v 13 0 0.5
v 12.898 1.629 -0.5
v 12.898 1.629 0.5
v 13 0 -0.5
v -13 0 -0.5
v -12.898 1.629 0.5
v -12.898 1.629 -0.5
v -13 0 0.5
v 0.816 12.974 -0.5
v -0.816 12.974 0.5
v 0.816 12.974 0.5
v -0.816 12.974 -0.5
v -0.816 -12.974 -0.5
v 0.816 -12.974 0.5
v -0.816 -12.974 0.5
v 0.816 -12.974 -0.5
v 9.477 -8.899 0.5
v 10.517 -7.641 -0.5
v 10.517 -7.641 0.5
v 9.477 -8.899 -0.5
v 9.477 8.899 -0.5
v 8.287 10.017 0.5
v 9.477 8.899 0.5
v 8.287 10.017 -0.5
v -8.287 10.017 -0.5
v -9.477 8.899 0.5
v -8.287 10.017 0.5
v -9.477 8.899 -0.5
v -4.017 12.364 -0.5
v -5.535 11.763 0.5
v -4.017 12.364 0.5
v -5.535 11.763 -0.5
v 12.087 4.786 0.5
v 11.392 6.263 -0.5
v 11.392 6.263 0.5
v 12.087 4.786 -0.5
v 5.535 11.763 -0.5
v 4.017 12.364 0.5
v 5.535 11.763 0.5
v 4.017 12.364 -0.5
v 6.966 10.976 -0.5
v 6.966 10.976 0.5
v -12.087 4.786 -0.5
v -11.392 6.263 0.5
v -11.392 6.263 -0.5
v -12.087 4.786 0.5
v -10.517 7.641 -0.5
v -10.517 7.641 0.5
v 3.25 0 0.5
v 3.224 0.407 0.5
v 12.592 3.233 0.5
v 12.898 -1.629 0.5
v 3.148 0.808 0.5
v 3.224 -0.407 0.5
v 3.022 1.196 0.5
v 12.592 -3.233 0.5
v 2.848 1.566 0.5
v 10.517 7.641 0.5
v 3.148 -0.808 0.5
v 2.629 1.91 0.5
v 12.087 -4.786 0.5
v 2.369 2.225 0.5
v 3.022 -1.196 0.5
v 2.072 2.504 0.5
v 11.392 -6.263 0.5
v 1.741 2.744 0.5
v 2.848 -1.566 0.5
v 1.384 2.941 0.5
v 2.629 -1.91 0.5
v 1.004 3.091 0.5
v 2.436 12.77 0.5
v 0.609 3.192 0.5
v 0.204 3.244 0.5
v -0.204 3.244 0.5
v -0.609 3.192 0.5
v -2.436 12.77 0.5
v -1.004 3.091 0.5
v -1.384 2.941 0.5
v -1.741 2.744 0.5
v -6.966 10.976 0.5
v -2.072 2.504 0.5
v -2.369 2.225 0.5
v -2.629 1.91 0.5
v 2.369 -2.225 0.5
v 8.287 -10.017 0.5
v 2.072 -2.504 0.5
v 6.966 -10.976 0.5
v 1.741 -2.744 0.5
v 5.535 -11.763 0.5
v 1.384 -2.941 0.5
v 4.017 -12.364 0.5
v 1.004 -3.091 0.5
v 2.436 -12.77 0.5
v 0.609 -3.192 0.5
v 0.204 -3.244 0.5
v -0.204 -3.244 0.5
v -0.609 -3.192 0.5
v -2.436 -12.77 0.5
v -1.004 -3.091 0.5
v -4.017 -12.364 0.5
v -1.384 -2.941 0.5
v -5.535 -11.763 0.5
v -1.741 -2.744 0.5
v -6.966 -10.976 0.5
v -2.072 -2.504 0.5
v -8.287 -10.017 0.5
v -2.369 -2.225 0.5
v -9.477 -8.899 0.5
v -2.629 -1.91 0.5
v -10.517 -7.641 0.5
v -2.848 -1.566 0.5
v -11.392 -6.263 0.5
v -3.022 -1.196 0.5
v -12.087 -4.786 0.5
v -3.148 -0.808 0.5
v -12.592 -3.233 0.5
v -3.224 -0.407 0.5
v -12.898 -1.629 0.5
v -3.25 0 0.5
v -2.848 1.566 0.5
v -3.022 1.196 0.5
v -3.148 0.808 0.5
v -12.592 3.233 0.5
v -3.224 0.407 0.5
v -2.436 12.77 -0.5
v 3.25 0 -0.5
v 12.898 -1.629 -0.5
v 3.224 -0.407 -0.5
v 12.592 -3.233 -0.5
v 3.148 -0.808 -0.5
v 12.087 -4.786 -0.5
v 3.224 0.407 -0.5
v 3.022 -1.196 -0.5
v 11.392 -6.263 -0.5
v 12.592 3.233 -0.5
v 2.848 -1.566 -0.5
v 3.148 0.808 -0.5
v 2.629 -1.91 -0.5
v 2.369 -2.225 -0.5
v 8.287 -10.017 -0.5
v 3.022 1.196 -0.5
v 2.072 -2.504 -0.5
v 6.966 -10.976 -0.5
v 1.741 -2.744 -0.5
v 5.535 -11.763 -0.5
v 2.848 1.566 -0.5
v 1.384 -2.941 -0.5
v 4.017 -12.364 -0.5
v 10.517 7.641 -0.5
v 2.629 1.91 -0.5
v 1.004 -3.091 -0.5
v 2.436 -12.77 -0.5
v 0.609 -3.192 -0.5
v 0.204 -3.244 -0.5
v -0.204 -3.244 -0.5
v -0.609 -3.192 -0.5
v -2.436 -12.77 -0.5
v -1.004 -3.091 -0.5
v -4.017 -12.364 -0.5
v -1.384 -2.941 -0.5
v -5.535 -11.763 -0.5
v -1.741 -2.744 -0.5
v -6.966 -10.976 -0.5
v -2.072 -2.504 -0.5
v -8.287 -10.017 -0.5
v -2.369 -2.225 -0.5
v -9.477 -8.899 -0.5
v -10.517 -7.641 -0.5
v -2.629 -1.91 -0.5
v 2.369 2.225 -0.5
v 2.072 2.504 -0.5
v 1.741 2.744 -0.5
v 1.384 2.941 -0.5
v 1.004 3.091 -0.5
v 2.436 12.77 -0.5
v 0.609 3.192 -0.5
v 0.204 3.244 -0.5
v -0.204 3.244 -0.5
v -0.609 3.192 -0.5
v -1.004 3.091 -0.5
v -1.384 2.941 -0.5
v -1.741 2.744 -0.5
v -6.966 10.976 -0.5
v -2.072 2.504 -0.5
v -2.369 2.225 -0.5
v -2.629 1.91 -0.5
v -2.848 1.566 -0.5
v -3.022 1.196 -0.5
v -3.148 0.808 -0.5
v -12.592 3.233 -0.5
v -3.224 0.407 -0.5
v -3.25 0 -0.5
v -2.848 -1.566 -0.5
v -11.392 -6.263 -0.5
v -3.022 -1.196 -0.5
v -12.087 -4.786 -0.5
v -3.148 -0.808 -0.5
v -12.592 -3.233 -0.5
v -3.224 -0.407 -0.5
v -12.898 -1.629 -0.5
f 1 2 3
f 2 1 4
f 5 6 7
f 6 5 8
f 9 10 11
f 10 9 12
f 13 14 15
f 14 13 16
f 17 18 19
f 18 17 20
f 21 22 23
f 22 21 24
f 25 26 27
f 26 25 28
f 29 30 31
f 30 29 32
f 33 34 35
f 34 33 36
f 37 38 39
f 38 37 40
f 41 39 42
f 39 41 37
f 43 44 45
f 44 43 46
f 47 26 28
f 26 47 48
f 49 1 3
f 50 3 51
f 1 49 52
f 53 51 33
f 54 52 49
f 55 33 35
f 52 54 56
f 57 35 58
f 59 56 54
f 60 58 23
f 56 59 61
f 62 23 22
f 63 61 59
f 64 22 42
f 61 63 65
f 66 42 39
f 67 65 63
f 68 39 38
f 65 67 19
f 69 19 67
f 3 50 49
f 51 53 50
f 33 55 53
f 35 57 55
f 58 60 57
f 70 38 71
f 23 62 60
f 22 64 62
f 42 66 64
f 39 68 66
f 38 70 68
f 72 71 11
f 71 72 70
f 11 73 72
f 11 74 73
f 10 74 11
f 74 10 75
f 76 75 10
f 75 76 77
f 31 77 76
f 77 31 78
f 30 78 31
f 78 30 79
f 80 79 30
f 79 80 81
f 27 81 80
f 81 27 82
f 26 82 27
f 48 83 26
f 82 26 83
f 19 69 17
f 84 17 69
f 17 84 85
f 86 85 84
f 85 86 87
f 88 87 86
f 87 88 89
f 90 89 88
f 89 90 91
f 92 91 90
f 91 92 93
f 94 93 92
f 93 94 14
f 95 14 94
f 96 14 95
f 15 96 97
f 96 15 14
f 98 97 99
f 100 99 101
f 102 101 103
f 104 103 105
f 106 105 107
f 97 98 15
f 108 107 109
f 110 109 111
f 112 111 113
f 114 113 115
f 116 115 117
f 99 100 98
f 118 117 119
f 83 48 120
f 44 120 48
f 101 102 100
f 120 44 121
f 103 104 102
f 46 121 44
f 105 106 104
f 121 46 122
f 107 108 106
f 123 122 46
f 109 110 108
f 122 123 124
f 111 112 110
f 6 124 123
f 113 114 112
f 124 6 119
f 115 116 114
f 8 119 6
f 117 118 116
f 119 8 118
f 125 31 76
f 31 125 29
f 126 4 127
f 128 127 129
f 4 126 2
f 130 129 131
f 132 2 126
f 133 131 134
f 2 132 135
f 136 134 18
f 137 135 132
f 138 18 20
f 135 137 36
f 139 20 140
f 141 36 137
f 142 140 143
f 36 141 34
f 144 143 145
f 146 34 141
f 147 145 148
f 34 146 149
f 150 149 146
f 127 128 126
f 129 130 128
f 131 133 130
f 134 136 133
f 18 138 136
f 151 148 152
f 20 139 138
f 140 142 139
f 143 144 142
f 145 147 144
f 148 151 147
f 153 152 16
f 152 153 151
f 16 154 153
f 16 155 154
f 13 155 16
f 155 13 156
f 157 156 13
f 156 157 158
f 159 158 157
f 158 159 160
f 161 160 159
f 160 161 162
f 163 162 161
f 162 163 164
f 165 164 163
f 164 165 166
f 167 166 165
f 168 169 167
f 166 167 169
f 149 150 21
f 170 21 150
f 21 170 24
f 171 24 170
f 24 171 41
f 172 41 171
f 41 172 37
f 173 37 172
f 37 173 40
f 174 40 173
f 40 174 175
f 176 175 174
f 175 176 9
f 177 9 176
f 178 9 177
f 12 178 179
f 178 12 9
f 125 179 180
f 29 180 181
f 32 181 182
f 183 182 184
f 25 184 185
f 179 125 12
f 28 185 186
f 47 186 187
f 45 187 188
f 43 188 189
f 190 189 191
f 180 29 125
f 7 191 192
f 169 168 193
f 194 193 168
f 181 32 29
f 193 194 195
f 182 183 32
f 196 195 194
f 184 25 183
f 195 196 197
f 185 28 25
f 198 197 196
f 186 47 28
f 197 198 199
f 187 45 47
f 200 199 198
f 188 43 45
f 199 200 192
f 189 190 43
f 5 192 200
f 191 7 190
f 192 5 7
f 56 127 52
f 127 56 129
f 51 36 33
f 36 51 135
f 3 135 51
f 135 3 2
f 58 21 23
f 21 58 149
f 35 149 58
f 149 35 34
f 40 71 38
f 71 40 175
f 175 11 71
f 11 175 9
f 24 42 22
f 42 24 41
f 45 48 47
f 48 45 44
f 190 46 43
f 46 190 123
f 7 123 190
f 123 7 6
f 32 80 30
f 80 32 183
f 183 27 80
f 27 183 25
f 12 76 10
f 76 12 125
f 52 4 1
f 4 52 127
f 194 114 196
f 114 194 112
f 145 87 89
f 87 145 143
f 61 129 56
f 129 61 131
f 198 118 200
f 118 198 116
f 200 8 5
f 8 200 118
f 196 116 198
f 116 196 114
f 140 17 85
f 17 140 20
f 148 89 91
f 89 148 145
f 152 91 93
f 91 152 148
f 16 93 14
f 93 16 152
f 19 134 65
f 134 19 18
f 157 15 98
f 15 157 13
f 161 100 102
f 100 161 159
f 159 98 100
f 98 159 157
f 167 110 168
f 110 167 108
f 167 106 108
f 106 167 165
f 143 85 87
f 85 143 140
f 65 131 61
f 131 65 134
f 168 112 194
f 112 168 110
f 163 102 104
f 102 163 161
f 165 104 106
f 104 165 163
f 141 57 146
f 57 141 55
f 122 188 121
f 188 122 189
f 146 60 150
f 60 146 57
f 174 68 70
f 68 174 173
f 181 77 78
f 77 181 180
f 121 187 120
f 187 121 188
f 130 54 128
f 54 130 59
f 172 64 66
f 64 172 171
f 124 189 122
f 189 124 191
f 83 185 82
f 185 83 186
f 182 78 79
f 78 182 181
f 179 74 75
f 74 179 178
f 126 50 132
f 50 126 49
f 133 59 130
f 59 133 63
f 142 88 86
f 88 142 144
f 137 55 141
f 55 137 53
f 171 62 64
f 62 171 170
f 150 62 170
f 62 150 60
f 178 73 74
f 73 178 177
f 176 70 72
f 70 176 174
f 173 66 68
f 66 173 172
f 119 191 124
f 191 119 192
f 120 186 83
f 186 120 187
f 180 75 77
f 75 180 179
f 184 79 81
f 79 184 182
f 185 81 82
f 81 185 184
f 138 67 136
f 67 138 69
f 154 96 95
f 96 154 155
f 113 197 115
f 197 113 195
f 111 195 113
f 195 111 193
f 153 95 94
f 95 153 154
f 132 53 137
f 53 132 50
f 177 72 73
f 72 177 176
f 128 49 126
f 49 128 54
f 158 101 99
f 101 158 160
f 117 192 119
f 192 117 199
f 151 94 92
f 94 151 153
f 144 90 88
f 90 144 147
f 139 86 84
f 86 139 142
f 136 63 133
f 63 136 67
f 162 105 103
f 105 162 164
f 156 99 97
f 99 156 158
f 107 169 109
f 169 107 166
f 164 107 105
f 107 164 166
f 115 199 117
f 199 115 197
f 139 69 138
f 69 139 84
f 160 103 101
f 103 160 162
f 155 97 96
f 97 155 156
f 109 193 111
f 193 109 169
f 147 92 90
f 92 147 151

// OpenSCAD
$fn = 50;


difference() {
	union() {
		translate(v = [0, 0, -0.5000000000]) {
			cylinder(h = 1, r = 13.0000000000);
		}
	}
	union() {
		translate(v = [0, 0, -100.0000000000]) {
			cylinder(h = 200, r = 3.2500000000);
		}
	}
}
